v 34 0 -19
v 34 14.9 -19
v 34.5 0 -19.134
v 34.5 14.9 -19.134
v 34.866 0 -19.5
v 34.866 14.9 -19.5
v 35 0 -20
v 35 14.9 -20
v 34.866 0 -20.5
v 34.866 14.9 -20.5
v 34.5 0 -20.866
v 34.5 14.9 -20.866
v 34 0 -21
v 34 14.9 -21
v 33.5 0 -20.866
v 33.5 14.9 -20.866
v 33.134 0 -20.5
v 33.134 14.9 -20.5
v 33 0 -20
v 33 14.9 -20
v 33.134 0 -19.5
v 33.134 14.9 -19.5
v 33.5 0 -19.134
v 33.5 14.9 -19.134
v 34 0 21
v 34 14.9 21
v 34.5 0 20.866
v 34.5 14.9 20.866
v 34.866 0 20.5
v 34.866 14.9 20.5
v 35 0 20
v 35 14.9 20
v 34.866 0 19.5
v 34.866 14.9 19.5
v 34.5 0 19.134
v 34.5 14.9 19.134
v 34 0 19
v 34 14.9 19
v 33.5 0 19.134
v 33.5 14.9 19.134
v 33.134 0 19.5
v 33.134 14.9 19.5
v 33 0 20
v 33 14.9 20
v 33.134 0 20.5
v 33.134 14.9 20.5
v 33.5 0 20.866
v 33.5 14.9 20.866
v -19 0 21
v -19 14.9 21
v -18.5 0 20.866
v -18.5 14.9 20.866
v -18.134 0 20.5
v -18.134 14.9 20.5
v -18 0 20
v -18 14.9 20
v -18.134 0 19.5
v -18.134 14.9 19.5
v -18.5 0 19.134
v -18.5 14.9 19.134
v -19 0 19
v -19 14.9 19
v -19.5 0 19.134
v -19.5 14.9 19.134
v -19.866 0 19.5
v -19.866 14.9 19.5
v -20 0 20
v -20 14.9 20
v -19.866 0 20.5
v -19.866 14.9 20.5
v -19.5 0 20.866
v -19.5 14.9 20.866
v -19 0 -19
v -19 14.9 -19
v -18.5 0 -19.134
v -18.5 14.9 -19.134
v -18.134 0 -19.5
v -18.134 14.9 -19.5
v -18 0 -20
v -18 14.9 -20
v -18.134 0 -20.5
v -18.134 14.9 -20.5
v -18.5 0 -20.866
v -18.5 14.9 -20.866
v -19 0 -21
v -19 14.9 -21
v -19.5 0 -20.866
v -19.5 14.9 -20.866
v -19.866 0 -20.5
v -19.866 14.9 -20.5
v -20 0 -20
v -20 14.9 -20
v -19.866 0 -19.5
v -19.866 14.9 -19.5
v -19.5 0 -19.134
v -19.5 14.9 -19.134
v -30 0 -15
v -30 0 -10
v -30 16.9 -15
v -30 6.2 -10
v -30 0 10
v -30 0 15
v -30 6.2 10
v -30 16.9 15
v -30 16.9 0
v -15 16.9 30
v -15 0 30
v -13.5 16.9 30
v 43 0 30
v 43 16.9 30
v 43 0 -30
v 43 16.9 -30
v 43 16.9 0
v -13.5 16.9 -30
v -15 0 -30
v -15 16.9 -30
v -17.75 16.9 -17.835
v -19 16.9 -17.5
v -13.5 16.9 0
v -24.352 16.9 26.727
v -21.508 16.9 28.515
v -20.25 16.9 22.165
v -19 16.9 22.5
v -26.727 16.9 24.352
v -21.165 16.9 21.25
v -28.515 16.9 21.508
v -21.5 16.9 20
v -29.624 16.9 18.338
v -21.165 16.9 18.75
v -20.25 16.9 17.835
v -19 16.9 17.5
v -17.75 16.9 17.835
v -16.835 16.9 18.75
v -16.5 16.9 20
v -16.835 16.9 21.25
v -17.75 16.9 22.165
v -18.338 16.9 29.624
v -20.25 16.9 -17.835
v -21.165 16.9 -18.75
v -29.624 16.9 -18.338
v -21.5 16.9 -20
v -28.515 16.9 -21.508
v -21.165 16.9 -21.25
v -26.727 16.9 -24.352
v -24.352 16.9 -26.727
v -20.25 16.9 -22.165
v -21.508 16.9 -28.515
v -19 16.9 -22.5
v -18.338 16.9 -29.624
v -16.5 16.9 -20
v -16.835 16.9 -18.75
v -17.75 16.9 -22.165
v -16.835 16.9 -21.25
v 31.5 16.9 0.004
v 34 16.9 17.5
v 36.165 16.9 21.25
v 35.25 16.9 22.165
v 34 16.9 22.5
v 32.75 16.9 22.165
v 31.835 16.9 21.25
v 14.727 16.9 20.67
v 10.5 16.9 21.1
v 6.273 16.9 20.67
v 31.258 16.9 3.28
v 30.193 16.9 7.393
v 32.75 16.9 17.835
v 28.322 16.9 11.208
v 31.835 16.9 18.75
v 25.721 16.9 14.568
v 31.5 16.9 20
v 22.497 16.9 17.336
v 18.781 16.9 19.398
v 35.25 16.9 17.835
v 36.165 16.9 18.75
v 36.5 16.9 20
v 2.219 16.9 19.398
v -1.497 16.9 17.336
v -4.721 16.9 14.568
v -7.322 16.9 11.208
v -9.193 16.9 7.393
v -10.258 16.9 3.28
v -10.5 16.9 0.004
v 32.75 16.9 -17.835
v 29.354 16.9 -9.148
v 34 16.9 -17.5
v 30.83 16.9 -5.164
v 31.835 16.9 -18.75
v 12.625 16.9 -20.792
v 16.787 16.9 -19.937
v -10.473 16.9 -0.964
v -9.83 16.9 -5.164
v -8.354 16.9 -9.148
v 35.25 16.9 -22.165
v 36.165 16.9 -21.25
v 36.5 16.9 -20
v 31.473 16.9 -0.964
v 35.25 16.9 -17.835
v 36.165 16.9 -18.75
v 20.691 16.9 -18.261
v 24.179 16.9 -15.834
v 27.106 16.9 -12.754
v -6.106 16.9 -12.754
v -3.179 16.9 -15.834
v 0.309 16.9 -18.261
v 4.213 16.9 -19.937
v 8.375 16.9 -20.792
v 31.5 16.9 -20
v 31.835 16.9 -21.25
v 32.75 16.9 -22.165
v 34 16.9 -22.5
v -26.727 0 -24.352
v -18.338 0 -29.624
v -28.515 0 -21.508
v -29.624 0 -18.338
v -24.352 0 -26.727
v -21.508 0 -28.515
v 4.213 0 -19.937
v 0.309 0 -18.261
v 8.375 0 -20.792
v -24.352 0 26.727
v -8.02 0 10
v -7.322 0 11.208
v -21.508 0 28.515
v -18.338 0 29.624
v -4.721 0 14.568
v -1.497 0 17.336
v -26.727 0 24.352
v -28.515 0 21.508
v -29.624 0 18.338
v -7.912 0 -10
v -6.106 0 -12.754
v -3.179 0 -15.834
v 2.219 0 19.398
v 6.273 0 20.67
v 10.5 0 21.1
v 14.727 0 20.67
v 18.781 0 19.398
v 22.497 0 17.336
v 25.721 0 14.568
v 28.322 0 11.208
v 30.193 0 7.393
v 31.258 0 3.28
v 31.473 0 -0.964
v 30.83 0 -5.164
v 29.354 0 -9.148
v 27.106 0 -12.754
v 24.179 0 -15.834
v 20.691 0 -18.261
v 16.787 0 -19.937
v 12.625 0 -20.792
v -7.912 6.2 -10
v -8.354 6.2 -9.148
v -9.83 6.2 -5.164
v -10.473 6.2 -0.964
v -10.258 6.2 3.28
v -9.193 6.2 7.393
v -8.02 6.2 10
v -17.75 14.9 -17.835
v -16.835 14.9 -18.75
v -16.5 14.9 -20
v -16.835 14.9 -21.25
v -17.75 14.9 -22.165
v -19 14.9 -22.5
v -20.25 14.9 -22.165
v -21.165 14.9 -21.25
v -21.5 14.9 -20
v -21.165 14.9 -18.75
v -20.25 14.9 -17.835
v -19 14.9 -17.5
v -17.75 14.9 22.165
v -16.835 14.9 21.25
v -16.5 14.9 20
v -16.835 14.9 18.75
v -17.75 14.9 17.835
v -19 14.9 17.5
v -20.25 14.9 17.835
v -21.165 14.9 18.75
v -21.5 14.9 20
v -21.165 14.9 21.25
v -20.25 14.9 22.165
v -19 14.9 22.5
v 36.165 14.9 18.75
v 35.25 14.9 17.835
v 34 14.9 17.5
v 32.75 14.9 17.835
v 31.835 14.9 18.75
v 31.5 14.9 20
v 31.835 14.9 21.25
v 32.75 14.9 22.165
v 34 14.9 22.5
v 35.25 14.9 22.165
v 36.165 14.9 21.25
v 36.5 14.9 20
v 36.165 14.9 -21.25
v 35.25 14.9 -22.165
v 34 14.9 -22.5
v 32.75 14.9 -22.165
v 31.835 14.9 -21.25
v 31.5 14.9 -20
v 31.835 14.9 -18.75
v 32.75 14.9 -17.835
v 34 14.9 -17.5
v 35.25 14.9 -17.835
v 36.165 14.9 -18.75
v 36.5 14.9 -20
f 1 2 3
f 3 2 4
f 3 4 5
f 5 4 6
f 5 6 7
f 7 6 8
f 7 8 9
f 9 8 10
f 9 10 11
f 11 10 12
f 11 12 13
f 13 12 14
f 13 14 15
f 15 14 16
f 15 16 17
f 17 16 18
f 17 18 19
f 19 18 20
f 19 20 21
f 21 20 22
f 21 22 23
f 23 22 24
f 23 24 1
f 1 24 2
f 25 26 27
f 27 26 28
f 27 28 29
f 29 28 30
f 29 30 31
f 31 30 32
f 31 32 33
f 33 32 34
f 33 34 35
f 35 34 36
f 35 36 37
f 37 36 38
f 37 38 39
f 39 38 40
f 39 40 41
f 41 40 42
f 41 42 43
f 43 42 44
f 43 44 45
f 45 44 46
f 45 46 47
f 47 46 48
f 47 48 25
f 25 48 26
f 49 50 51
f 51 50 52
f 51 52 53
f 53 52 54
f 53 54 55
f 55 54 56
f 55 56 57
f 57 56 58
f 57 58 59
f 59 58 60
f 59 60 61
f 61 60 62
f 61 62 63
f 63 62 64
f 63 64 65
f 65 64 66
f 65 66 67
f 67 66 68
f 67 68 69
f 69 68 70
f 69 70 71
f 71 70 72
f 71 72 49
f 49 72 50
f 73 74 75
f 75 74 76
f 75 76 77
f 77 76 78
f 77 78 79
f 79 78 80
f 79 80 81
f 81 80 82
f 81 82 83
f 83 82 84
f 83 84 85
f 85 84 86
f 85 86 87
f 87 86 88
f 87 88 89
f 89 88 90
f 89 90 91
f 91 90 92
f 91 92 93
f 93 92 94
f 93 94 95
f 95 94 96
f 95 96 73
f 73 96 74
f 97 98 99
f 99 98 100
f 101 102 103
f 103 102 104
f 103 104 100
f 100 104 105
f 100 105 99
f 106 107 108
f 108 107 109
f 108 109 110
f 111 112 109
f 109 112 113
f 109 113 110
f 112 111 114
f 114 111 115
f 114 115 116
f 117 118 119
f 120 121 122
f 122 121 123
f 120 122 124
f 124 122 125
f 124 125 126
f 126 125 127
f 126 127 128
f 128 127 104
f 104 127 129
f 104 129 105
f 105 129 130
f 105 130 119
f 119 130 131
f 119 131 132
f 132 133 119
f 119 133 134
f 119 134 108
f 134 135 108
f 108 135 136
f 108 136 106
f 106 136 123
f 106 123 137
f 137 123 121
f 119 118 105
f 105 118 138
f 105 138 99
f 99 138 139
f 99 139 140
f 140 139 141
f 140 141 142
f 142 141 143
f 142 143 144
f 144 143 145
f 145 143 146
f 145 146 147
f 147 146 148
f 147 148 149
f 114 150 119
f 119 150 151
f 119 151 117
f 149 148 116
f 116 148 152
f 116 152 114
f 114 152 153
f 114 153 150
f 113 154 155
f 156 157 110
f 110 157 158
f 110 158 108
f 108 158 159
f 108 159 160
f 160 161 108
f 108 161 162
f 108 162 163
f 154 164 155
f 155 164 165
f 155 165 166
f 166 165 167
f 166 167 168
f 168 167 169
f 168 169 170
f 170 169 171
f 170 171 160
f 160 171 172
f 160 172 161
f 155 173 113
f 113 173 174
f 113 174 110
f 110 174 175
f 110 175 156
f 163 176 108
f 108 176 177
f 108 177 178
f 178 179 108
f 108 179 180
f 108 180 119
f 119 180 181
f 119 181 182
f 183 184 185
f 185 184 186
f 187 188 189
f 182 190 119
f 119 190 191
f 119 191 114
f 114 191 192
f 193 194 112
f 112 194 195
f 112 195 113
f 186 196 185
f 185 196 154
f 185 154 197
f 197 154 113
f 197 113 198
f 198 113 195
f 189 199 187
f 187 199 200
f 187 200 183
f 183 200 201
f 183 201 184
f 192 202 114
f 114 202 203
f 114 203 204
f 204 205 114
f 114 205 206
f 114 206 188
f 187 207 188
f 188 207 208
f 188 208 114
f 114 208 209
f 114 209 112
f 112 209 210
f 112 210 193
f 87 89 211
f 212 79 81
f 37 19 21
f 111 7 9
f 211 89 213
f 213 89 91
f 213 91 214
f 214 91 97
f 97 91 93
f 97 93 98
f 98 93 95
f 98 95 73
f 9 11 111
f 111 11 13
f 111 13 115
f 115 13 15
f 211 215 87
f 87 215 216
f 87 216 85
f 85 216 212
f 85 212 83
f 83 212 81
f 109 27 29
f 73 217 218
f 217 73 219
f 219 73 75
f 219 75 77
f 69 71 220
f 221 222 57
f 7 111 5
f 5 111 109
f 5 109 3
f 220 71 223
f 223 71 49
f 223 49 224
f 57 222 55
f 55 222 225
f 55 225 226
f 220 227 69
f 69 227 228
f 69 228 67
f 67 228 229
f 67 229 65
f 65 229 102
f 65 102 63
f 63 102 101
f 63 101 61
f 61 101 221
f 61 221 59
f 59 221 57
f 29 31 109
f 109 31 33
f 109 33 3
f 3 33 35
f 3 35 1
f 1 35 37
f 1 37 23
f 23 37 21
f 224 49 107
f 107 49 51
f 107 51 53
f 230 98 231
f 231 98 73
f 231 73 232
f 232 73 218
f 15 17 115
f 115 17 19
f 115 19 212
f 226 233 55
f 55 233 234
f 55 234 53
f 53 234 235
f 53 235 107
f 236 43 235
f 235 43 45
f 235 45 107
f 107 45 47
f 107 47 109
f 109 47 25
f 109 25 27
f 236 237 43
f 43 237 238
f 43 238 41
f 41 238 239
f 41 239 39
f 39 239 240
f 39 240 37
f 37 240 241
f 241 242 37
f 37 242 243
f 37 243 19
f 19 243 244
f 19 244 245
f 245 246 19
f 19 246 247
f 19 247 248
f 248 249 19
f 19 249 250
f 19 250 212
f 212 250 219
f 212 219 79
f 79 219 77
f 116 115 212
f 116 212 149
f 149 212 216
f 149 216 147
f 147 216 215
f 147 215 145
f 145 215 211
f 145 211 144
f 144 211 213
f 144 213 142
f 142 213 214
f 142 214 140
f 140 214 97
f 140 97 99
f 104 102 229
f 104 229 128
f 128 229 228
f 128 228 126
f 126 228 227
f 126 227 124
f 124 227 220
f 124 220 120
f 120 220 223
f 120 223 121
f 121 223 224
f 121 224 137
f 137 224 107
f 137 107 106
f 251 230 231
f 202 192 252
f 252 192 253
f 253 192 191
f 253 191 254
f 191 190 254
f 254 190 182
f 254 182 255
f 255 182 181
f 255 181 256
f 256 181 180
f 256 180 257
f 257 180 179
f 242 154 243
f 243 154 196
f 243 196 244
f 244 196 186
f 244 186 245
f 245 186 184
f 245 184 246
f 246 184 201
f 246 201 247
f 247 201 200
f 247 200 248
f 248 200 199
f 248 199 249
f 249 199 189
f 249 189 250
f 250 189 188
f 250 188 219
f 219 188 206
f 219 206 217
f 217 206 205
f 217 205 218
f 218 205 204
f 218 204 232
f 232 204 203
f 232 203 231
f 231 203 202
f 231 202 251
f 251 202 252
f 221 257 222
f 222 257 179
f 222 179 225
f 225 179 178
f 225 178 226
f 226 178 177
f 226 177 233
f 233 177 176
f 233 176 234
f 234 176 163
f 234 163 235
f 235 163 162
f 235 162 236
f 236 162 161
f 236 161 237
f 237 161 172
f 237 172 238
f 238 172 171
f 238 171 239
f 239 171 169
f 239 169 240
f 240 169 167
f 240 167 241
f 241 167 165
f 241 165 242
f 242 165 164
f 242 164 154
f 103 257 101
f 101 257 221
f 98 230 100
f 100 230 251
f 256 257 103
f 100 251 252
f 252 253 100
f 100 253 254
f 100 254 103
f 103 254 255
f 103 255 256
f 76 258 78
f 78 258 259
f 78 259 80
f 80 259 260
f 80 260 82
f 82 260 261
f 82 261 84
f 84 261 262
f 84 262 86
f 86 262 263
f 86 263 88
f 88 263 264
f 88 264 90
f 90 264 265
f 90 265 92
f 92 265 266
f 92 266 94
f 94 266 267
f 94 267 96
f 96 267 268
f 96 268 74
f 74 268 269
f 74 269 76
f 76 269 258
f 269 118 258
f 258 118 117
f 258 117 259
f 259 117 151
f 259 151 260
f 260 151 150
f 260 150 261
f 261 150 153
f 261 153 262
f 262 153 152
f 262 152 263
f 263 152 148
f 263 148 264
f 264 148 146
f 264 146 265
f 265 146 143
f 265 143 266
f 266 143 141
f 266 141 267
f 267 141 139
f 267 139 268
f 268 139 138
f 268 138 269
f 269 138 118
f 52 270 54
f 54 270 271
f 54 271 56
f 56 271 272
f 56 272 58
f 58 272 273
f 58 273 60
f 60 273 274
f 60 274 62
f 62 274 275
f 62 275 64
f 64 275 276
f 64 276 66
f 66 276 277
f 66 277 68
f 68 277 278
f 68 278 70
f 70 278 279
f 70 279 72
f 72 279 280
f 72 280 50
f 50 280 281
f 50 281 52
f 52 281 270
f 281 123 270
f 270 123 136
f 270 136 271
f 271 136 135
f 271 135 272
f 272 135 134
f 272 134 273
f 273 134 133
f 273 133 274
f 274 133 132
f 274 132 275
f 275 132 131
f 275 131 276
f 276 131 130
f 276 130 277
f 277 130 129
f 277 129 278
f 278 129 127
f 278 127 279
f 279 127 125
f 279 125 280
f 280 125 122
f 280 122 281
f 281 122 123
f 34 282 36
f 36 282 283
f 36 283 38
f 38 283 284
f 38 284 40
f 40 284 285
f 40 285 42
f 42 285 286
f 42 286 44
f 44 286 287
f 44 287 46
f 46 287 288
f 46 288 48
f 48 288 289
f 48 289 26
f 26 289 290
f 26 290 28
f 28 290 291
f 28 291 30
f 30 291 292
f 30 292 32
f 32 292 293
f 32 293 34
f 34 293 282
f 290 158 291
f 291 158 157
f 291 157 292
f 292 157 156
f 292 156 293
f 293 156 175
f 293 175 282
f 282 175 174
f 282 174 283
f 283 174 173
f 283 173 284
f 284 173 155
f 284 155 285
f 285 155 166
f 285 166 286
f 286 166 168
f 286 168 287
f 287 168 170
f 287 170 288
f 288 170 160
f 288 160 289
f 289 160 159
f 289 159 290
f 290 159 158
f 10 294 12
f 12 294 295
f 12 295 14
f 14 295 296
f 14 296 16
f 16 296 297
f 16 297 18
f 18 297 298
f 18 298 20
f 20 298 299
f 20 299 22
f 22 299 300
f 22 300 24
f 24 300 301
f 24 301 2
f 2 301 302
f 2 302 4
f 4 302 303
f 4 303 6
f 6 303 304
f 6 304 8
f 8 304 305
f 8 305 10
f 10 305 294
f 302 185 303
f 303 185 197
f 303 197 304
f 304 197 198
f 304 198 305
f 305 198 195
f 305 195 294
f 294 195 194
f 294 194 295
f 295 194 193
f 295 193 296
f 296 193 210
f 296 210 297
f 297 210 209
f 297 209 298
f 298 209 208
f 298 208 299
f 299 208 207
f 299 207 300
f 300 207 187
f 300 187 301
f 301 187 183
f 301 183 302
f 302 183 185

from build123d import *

# Parameters (mm, degrees)
SKETCH1_W           = 73
SKETCH1_H           = 60
BOSS_EXTRUDE1_DEPTH = 16.9
FILLET1_R           = 15
CUT_EXTRUDE1_REACH  = 57.087
SKETCH2_R           = 21
SKETCH3_W           = 40
SKETCH3_H           = 20
CUT_EXTRUDE2_DEPTH  = 6.2
CUT_EXTRUDE3_REACH  = 57.087
SKETCH4_R           = 1
SKETCH5_R           = 2.5
CUT_EXTRUDE4_DEPTH  = 2


with BuildPart() as part:
    # Sketch1 → Boss-Extrude1 (new body)
    with BuildSketch(Plane(origin=(0, 0, 0), x_dir=(1, 0, 0), z_dir=(0, 1, 0))):
        with Locations((6.5, 0)):
            Rectangle(SKETCH1_W, SKETCH1_H)
    extrude(amount=BOSS_EXTRUDE1_DEPTH)

    # Fillet1
    fillet1_edges = [part.edges().sort_by_distance(p)[0] for p in [
        (-30, 8.45, -30),
        (-30, 8.45, 30),
    ]]
    fillet(fillet1_edges, radius=FILLET1_R)

    # Sketch2 → Cut-Extrude1 (cut, up to next)
    with BuildSketch(Plane(origin=(0, 16.9, 0), x_dir=(1, 0, 0), z_dir=(0, 1, 0)), mode=Mode.PRIVATE) as cut_extrude1_sk1:
        with Locations(Location((10.5, -0.1, 0), (0, 0, 270))):
            Circle(SKETCH2_R)
    cut_extrude1_tool1 = extrude(cut_extrude1_sk1.sketch, amount=-CUT_EXTRUDE1_REACH, mode=Mode.PRIVATE) & part.part
    add(cut_extrude1_tool1.solids().sort_by_distance((10.5, 16.9, 0.1))[0], mode=Mode.SUBTRACT)

    # Sketch3 → Cut-Extrude2 (cut)
    with BuildSketch(Plane.XZ):
        with Locations((-10, 0)):
            Rectangle(SKETCH3_W, SKETCH3_H)
    extrude(amount=-CUT_EXTRUDE2_DEPTH, mode=Mode.SUBTRACT)

    # Sketch4 → Cut-Extrude3 (cut, up to next)
    with BuildSketch(Plane(origin=(0, 16.9, 0), x_dir=(1, 0, 0), z_dir=(0, 1, 0)), mode=Mode.PRIVATE) as cut_extrude3_sk1:
        with Locations(Location((34, 20, 0), (0, 0, 270))):
            Circle(SKETCH4_R)
    cut_extrude3_tool1 = extrude(cut_extrude3_sk1.sketch, amount=-CUT_EXTRUDE3_REACH, mode=Mode.PRIVATE) & part.part
    # Sketch4 → Cut-Extrude3 (cut, up to next)
    with BuildSketch(Plane(origin=(0, 16.9, 0), x_dir=(1, 0, 0), z_dir=(0, 1, 0)), mode=Mode.PRIVATE) as cut_extrude3_sk2:
        with Locations(Location((34, -20, 0), (0, 0, 270))):
            Circle(SKETCH4_R)
    cut_extrude3_tool2 = extrude(cut_extrude3_sk2.sketch, amount=-CUT_EXTRUDE3_REACH, mode=Mode.PRIVATE) & part.part
    # Sketch4 → Cut-Extrude3 (cut, up to next)
    with BuildSketch(Plane(origin=(0, 16.9, 0), x_dir=(1, 0, 0), z_dir=(0, 1, 0)), mode=Mode.PRIVATE) as cut_extrude3_sk3:
        with Locations(Location((-19, -20, 0), (0, 0, 270))):
            Circle(SKETCH4_R)
    cut_extrude3_tool3 = extrude(cut_extrude3_sk3.sketch, amount=-CUT_EXTRUDE3_REACH, mode=Mode.PRIVATE) & part.part
    # Sketch4 → Cut-Extrude3 (cut, up to next)
    with BuildSketch(Plane(origin=(0, 16.9, 0), x_dir=(1, 0, 0), z_dir=(0, 1, 0)), mode=Mode.PRIVATE) as cut_extrude3_sk4:
        with Locations(Location((-19, 20, 0), (0, 0, 270))):
            Circle(SKETCH4_R)
    cut_extrude3_tool4 = extrude(cut_extrude3_sk4.sketch, amount=-CUT_EXTRUDE3_REACH, mode=Mode.PRIVATE) & part.part
    add(cut_extrude3_tool1.solids().sort_by_distance((34, 16.9, -20))[0], mode=Mode.SUBTRACT)
    add(cut_extrude3_tool2.solids().sort_by_distance((34, 16.9, 20))[0], mode=Mode.SUBTRACT)
    add(cut_extrude3_tool3.solids().sort_by_distance((-19, 16.9, 20))[0], mode=Mode.SUBTRACT)
    add(cut_extrude3_tool4.solids().sort_by_distance((-19, 16.9, -20))[0], mode=Mode.SUBTRACT)

    # Sketch5 → Cut-Extrude4 (cut)
    with BuildSketch(Plane(origin=(0, 16.9, 0), x_dir=(1, 0, 0), z_dir=(0, 1, 0))):
        with Locations(Location((-19, 20, 0), (0, 0, 270))):
            Circle(SKETCH5_R)
        with Locations(Location((-19, -20, 0), (0, 0, 270))):
            Circle(SKETCH5_R)
        with Locations(Location((34, -20, 0), (0, 0, 270))):
            Circle(SKETCH5_R)
        with Locations(Location((34, 20, 0), (0, 0, 270))):
            Circle(SKETCH5_R)
    extrude(amount=-CUT_EXTRUDE4_DEPTH, mode=Mode.SUBTRACT)


solid = part.part
